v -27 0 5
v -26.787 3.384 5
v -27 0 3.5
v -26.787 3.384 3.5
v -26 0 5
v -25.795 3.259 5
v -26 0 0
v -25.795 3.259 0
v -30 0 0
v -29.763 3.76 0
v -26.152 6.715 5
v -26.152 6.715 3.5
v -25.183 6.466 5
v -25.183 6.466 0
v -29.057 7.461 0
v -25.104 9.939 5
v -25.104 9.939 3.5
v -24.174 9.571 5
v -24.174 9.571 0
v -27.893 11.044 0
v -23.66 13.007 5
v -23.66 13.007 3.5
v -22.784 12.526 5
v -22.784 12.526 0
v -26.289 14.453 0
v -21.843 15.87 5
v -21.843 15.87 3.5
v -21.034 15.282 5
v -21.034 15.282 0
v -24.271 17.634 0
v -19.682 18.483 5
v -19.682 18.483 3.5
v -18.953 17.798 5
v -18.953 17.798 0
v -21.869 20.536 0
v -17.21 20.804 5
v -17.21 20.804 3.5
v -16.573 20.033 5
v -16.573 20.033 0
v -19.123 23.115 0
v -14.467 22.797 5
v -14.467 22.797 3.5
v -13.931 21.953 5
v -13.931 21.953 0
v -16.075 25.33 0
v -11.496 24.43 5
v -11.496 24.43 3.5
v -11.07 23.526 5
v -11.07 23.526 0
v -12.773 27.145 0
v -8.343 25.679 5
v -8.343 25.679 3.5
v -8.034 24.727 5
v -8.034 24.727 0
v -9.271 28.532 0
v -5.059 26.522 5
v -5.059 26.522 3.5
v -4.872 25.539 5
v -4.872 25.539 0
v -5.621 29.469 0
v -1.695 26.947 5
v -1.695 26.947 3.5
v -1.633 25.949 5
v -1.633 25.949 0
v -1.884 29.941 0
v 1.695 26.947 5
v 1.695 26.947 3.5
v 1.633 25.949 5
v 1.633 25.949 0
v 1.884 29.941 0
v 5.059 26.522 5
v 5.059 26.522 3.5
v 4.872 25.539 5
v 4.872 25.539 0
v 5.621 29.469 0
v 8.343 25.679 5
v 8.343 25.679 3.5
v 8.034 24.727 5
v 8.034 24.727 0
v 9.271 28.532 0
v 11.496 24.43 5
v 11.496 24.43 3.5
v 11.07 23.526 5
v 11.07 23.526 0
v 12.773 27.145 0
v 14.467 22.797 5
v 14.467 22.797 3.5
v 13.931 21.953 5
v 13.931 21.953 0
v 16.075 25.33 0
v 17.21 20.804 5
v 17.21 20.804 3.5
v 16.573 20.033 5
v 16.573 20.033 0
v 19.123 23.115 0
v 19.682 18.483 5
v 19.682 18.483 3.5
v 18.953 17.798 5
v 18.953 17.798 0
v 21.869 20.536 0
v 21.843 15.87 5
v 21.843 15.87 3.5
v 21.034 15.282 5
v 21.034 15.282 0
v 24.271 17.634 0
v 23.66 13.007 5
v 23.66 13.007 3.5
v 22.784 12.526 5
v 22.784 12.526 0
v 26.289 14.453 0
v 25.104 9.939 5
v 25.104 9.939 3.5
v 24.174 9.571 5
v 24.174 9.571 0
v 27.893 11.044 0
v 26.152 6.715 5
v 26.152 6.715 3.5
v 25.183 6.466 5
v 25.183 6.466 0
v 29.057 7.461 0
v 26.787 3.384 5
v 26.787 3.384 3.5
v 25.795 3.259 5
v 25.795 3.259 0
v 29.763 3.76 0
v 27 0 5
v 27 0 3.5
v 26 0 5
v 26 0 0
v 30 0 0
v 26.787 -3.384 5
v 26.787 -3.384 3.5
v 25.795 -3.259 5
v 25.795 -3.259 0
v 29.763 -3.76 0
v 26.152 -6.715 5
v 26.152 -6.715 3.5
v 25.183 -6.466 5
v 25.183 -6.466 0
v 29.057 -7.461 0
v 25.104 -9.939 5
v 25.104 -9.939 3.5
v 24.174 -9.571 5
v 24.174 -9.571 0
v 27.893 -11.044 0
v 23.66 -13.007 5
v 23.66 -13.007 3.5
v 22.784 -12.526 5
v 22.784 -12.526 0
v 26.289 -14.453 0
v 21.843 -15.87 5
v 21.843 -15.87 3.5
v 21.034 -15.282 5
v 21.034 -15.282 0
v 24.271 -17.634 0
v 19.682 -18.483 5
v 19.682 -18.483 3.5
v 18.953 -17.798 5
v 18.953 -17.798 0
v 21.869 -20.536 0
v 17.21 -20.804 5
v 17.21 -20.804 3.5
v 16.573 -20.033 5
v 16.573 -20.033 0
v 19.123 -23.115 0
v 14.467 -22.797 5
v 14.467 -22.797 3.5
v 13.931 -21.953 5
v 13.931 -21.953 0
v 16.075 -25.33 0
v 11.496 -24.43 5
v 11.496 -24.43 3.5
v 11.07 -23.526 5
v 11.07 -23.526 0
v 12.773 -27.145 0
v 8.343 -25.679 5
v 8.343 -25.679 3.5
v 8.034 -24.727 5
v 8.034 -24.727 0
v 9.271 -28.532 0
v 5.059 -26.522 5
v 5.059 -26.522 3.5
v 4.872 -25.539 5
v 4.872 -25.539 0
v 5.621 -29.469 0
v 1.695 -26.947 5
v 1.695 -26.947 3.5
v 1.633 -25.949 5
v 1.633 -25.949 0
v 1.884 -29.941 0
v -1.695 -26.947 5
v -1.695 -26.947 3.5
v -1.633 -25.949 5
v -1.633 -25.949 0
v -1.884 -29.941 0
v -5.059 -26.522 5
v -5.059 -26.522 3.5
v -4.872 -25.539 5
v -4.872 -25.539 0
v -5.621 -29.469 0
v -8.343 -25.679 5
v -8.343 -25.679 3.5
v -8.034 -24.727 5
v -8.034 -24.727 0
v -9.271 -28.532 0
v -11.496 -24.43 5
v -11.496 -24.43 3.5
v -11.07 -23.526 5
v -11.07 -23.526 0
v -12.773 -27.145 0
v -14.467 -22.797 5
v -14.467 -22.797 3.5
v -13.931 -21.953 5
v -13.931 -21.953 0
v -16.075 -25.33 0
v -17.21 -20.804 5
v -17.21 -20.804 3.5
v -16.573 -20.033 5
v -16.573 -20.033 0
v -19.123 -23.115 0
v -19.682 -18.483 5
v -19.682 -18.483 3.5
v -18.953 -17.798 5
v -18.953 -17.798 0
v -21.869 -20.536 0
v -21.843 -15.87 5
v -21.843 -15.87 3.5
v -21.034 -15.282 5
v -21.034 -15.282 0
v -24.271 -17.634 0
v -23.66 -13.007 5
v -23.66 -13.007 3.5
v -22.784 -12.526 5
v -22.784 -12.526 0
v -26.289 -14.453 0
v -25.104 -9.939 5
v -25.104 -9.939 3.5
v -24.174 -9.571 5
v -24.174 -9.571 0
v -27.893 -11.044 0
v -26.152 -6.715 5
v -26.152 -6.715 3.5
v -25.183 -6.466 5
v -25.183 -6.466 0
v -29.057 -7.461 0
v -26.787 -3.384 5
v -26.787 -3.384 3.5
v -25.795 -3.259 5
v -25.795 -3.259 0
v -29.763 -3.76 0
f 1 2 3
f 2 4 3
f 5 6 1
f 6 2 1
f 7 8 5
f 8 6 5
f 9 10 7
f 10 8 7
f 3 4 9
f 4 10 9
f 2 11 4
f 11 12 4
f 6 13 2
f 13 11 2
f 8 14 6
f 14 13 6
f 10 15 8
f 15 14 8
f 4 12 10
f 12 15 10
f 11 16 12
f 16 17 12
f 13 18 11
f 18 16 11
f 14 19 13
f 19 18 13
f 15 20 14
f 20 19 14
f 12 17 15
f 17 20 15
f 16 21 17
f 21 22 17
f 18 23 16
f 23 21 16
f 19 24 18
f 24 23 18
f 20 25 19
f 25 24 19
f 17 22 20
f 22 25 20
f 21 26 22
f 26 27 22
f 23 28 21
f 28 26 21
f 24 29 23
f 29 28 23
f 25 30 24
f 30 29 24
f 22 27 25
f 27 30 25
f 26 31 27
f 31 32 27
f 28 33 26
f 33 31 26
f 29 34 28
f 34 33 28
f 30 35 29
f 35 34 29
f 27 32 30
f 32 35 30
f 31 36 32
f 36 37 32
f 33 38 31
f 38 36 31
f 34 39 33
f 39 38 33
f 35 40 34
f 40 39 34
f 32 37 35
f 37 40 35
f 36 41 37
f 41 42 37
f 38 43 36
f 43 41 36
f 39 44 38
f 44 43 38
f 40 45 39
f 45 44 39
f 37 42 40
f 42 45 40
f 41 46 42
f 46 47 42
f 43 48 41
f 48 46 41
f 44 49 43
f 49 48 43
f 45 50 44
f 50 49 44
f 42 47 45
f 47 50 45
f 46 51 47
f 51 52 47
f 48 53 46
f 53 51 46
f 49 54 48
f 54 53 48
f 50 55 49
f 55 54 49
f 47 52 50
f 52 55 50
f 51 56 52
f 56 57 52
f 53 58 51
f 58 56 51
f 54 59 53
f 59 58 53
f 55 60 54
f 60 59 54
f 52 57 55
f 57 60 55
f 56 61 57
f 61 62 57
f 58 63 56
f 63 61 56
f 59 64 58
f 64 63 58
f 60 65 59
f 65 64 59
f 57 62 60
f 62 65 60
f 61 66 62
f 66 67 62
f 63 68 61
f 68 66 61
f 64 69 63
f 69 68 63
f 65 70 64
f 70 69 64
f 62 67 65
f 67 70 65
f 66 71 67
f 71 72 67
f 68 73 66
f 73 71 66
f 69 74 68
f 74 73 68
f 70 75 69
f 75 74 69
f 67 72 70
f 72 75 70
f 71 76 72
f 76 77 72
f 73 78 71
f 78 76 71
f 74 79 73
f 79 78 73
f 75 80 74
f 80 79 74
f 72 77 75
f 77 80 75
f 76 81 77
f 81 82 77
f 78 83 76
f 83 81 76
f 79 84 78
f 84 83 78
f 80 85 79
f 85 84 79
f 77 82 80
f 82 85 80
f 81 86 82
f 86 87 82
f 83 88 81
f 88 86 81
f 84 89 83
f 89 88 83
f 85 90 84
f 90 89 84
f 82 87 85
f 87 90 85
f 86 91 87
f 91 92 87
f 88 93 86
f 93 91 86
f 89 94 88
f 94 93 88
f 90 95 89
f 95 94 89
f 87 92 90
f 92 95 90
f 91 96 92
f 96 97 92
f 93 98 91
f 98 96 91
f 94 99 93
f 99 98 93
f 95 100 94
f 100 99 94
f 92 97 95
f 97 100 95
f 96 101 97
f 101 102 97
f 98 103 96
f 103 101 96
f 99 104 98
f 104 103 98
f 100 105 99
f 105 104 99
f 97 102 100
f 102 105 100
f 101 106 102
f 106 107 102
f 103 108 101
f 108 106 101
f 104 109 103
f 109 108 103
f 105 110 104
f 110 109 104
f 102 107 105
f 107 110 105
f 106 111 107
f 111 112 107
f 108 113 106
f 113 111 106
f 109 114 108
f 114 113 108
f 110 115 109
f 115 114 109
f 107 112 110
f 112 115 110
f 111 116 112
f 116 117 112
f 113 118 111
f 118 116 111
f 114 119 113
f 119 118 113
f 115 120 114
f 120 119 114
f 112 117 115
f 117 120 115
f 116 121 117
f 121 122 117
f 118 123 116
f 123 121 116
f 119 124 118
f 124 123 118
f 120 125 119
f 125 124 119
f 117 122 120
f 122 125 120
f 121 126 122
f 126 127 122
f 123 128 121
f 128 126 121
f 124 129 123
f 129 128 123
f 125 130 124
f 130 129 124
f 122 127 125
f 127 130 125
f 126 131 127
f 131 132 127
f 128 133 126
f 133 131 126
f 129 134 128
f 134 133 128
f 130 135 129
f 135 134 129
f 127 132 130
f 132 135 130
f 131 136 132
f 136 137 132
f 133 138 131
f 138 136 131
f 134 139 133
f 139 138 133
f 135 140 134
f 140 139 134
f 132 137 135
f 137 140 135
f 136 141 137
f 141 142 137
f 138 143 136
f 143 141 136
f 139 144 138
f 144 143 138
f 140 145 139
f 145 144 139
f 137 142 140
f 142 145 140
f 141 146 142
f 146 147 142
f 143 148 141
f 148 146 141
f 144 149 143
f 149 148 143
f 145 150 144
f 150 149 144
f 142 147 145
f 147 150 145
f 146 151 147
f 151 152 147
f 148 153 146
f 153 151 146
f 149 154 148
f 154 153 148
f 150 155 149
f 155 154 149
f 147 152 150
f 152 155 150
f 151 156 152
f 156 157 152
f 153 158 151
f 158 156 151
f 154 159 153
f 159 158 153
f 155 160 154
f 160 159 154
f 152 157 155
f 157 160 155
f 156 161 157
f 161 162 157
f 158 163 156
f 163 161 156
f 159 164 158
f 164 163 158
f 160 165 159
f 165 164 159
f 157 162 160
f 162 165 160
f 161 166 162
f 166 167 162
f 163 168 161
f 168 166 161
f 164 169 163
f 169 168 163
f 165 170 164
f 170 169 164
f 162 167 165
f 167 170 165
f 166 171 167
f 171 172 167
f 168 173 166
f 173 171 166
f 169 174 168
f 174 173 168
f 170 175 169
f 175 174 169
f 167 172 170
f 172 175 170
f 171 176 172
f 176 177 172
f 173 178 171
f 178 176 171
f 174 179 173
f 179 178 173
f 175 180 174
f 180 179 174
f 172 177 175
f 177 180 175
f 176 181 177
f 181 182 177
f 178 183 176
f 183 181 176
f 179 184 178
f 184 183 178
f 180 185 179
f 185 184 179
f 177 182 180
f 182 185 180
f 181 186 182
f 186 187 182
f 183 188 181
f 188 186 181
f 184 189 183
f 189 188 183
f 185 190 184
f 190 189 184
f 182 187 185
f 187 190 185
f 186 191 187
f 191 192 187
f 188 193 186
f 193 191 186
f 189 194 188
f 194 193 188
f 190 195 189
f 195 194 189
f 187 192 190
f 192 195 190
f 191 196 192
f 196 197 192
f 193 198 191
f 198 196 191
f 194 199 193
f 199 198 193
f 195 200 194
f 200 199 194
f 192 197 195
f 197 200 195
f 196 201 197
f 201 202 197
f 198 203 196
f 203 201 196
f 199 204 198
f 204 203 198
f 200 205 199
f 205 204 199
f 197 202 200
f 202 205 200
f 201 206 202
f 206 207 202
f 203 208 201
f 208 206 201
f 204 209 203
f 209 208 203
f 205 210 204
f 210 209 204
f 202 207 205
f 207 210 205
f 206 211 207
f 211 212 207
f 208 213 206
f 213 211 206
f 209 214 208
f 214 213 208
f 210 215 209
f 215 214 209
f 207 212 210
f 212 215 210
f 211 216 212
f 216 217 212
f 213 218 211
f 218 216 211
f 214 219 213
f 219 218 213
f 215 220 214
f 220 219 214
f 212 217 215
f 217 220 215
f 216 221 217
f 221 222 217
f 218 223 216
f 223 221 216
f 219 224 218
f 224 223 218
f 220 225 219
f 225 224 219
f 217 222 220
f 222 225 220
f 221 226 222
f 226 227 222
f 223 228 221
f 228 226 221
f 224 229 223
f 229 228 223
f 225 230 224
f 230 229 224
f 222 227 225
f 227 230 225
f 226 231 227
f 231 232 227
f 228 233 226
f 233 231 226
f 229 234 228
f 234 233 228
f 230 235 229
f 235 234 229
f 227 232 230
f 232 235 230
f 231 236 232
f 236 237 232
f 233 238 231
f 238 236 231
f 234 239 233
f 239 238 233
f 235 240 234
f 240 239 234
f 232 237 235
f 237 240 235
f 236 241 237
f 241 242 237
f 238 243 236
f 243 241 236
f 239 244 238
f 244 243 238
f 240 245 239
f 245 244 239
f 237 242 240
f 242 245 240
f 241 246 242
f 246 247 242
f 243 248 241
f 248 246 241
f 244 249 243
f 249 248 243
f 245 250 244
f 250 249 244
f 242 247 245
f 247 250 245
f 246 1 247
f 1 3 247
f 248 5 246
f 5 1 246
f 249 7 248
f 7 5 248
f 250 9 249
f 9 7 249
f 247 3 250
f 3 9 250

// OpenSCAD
$fn=50;

rotate_extrude() translate([30,0,0]) {
    mirror([1,0,0]) polygon([
        [0,0], [4,0],
        [4,5], [3,5],
        [3,3.5]
    ]);
}
